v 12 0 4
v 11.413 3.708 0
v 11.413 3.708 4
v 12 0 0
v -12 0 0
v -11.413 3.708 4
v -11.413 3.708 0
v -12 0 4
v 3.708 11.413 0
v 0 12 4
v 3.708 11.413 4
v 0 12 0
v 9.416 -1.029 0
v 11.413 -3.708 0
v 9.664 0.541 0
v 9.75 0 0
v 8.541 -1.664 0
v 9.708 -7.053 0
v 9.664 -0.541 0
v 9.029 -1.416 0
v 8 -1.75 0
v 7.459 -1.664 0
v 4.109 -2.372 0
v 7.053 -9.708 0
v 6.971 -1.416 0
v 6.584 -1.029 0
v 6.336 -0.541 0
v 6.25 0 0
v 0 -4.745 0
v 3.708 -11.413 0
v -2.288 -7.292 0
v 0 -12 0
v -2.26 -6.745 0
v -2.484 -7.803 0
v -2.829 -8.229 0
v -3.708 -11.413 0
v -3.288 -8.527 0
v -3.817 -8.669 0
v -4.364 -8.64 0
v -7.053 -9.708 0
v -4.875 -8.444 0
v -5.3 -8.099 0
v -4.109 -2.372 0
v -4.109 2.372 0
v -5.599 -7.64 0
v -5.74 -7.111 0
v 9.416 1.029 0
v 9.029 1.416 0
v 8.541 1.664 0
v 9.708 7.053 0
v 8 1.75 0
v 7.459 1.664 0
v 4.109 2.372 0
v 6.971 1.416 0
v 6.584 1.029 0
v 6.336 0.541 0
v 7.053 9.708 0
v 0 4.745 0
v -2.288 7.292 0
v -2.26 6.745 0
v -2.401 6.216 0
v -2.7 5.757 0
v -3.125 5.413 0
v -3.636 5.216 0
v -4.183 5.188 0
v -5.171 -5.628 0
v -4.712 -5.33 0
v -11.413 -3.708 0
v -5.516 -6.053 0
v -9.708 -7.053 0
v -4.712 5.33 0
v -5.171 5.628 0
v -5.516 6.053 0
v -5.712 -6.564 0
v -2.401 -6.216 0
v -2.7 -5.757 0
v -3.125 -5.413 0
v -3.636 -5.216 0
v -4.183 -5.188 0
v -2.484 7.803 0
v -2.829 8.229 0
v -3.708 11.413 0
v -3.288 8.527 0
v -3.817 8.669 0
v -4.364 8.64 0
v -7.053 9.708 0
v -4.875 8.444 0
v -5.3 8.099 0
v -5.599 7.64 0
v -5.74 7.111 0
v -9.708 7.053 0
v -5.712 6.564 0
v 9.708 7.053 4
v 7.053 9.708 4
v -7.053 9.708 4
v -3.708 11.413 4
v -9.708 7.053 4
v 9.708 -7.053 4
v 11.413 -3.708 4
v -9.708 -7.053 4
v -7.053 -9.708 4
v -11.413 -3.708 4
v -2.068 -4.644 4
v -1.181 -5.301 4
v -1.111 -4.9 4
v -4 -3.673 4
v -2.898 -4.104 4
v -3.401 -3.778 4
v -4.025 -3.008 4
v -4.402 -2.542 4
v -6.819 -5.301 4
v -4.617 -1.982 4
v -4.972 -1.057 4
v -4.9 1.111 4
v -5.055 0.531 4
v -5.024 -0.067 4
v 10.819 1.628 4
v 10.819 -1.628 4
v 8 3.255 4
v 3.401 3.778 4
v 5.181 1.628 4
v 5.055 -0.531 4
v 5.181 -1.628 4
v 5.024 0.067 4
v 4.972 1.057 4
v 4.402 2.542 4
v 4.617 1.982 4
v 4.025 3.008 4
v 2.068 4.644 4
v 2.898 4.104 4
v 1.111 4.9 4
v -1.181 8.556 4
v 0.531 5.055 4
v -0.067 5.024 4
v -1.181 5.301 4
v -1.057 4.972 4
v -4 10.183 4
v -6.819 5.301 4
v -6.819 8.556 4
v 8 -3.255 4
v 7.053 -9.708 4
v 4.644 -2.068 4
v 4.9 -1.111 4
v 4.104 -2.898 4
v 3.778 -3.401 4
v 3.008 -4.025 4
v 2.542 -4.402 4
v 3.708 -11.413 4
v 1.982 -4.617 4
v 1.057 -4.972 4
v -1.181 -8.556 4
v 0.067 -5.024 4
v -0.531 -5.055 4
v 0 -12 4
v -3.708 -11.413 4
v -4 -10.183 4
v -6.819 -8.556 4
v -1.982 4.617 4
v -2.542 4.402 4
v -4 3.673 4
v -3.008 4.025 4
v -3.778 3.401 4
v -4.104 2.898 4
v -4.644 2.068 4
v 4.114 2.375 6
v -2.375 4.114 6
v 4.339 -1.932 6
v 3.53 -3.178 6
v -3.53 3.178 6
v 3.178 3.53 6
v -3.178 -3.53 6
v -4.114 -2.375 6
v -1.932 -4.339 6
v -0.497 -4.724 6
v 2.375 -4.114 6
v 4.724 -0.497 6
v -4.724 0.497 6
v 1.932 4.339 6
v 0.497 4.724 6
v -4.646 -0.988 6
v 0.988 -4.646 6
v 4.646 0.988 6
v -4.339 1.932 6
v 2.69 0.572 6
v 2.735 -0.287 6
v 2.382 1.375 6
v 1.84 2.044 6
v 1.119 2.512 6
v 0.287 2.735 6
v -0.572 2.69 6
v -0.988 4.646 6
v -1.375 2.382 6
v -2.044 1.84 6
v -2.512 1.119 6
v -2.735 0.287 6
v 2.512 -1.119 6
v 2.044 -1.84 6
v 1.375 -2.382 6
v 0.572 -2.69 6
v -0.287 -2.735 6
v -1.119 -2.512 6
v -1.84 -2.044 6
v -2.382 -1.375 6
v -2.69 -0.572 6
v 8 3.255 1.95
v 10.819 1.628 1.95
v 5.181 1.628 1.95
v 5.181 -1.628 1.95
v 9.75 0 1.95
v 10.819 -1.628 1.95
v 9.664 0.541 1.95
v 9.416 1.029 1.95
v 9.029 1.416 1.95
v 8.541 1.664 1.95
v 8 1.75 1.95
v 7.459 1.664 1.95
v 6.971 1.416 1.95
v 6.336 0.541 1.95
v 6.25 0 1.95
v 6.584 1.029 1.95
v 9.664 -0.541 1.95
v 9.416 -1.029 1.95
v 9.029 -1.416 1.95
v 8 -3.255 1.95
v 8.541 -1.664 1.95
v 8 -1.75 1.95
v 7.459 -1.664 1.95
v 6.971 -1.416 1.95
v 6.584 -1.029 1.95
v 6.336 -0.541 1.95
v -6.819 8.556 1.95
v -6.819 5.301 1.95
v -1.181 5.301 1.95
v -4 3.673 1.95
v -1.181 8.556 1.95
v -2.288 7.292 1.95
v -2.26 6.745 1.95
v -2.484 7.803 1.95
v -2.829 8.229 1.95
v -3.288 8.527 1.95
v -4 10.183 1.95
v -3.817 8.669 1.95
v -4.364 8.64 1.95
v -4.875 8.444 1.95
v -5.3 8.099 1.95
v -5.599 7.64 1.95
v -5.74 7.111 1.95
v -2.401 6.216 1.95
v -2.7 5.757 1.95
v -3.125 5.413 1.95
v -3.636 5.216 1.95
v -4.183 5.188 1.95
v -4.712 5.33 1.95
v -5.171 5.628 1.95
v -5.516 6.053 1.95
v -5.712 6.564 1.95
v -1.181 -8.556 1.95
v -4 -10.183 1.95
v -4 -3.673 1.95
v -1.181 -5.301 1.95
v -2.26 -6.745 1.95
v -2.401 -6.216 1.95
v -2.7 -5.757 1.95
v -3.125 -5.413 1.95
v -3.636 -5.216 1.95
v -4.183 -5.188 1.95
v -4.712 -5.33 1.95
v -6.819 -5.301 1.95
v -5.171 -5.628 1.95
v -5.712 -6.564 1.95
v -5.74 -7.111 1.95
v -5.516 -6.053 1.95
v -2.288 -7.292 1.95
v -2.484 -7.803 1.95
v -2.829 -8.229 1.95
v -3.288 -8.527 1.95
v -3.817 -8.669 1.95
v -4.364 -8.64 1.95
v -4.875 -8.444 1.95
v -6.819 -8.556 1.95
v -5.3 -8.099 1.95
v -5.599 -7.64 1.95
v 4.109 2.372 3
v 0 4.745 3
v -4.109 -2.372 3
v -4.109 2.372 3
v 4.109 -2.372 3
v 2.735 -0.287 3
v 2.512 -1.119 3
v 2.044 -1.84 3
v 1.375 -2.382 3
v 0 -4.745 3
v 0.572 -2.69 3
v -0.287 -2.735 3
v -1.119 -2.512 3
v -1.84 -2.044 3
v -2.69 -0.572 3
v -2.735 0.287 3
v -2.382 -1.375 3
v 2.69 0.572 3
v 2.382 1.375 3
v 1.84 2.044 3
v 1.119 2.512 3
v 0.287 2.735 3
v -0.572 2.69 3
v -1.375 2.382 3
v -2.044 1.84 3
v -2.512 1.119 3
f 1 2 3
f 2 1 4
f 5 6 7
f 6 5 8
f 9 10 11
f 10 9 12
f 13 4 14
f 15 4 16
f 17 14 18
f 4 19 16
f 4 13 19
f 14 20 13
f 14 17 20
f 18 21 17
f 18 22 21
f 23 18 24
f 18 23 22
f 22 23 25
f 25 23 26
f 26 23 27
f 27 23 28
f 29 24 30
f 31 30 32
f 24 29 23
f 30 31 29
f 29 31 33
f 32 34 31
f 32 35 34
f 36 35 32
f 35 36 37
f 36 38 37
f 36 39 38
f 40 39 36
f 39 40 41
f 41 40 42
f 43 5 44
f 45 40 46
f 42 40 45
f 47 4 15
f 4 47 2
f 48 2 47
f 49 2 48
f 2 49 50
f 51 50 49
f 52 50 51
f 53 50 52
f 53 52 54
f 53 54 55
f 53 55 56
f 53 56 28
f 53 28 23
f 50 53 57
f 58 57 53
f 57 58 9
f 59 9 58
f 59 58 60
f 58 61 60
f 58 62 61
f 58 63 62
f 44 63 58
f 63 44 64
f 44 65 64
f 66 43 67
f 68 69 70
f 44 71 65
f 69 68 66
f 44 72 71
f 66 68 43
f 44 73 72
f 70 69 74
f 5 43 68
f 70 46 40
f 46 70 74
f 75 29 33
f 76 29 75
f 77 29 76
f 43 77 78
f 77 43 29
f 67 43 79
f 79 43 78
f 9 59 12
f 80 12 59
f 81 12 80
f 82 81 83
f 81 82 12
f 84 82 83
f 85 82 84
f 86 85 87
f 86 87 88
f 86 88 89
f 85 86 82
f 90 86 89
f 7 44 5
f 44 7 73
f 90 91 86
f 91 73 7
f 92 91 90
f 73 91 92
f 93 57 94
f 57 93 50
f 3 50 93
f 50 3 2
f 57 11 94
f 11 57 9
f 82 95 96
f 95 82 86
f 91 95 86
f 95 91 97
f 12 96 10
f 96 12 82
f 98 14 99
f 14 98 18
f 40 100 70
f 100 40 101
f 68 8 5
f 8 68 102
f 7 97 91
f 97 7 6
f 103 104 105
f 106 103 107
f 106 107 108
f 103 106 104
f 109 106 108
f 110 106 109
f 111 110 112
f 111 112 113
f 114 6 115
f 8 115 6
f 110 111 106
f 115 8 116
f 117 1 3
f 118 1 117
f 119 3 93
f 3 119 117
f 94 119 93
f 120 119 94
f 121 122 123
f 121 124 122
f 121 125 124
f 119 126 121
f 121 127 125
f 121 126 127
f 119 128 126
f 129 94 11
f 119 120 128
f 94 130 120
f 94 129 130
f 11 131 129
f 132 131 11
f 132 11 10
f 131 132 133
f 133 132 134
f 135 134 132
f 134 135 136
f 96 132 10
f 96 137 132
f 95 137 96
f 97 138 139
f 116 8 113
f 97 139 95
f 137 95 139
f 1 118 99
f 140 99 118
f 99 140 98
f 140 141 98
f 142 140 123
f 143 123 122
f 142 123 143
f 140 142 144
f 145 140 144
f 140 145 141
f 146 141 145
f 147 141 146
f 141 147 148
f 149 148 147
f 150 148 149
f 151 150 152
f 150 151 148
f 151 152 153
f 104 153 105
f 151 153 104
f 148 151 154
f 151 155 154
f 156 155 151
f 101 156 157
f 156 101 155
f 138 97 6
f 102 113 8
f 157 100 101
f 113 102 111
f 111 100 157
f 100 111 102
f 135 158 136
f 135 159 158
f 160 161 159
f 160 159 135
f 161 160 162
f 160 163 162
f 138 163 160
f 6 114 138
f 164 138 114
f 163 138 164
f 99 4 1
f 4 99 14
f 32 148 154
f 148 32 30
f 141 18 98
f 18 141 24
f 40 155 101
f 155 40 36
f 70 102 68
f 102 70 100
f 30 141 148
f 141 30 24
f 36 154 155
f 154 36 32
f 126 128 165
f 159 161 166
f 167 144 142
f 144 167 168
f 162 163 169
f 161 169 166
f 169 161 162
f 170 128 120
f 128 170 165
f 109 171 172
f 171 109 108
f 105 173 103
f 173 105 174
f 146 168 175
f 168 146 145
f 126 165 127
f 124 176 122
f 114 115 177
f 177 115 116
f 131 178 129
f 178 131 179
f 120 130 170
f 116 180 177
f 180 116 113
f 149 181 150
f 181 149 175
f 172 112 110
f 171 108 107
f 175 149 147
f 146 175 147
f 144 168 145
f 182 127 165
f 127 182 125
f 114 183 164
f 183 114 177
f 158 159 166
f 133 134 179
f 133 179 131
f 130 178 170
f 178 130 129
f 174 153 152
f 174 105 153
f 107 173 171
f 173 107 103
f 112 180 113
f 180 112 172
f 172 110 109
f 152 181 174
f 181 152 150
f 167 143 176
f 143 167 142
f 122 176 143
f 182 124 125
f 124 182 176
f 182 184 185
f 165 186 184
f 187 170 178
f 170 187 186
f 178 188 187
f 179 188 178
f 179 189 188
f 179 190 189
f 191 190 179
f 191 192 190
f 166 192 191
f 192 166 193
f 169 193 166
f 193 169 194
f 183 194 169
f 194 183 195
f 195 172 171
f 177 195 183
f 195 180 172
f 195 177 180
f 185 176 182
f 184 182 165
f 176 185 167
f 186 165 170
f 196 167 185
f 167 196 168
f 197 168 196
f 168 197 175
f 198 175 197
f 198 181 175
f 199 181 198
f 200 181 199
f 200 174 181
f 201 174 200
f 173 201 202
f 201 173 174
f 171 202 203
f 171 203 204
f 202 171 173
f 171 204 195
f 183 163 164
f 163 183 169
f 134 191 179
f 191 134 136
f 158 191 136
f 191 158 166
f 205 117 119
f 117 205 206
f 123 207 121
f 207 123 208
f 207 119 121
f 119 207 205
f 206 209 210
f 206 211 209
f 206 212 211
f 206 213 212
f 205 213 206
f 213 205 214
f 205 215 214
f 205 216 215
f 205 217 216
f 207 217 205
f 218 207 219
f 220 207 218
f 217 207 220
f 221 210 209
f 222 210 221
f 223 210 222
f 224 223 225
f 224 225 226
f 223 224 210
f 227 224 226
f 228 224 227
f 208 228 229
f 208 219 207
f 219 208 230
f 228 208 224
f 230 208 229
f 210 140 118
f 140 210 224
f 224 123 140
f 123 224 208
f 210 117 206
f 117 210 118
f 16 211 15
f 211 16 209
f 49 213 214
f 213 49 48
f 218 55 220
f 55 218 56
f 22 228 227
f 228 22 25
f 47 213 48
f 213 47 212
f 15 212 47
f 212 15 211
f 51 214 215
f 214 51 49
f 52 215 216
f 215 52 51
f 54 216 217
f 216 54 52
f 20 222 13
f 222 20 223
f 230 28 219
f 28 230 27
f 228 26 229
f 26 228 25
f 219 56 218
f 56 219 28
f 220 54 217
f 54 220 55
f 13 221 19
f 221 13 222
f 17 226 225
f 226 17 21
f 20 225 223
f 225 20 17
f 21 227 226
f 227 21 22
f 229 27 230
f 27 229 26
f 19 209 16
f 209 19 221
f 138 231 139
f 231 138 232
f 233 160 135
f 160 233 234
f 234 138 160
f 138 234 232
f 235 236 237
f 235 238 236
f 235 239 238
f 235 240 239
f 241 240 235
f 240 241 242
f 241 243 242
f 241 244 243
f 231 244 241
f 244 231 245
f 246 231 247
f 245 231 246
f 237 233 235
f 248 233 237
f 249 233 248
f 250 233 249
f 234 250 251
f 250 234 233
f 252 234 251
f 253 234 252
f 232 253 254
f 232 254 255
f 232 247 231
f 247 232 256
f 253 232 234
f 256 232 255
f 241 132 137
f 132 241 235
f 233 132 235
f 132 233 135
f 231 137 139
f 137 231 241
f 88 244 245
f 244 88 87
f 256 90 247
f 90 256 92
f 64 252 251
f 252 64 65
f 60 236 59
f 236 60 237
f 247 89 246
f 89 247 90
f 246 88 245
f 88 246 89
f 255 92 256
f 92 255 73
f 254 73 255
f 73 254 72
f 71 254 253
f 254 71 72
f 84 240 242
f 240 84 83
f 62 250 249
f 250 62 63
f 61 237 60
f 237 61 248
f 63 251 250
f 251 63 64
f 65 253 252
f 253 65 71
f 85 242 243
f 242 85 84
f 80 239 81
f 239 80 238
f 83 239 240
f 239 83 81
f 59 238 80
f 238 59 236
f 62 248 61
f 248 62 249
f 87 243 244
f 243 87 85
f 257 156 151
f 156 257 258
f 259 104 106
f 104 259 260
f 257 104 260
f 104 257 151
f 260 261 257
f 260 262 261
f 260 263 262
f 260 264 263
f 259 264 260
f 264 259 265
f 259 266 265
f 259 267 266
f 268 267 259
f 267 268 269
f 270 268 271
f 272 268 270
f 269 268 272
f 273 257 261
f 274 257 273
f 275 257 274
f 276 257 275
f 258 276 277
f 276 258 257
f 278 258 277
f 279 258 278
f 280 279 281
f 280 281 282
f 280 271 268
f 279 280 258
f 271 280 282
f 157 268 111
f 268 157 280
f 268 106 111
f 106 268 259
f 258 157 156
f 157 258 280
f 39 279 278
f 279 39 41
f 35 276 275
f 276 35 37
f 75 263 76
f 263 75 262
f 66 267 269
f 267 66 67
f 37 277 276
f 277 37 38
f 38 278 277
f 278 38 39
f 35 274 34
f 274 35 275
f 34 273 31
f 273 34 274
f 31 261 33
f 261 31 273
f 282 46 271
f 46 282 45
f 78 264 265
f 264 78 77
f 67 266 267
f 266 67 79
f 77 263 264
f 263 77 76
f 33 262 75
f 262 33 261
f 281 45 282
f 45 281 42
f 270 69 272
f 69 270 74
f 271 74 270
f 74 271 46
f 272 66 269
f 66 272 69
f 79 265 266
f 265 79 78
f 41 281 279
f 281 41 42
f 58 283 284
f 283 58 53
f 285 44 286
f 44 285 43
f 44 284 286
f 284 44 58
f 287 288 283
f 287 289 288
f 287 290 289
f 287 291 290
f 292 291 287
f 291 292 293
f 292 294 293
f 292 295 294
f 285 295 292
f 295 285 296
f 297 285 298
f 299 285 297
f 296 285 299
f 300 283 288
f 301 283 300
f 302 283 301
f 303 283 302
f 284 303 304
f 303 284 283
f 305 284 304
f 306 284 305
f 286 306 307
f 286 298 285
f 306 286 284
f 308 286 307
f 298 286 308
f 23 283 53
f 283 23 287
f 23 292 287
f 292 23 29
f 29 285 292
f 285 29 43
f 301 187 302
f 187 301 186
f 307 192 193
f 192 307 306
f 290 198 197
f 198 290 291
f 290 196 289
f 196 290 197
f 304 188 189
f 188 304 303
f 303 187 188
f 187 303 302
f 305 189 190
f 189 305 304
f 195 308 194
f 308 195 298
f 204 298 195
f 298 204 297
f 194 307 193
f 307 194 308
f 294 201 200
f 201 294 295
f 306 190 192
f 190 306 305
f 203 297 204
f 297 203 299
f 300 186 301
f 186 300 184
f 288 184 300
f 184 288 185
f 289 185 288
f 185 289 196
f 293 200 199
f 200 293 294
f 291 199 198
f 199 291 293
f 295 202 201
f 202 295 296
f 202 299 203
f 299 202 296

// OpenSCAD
difference() {
	union() {
		difference() {
			cylinder($fn = 20, d = 24, h = 4);
			rotate(a = [0, 0, 0.0000000000]) {
				translate(v = [42.5000000000, 0, 9.5000000000]) {
					rotate(a = [180, -90, 0]) {
						translate(v = [0, 0, 5.2000000000]) {
							union() {
								translate(v = [0, 0, false]) {
									cylinder($fn = 20, d = 5.5000000000, h = 55.2000000000);
								}
								translate(v = [0, 0, -15.1500000000]) {
									cylinder($fn = 20, d = 9.0000000000, h = 15.2000000000);
								}
							}
						}
					}
				}
				translate(v = [51.0000000000, -50, 0]) {
					cube(size = 100);
				}
			}
			rotate(a = [0, 0, 45.0000000000]) {
				translate(v = [42.5000000000, 0, 9.5000000000]) {
					rotate(a = [180, -90, 0]) {
						translate(v = [0, 0, 5.2000000000]) {
							union() {
								translate(v = [0, 0, false]) {
									cylinder($fn = 20, d = 5.5000000000, h = 55.2000000000);
								}
								translate(v = [0, 0, -15.1500000000]) {
									cylinder($fn = 20, d = 9.0000000000, h = 15.2000000000);
								}
							}
						}
					}
				}
				translate(v = [51.0000000000, -50, 0]) {
					cube(size = 100);
				}
			}
			rotate(a = [0, 0, 90.0000000000]) {
				translate(v = [42.5000000000, 0, 9.5000000000]) {
					rotate(a = [180, -90, 0]) {
						translate(v = [0, 0, 5.2000000000]) {
							union() {
								translate(v = [0, 0, false]) {
									cylinder($fn = 20, d = 5.5000000000, h = 55.2000000000);
								}
								translate(v = [0, 0, -15.1500000000]) {
									cylinder($fn = 20, d = 9.0000000000, h = 15.2000000000);
								}
							}
						}
					}
				}
				translate(v = [51.0000000000, -50, 0]) {
					cube(size = 100);
				}
			}
			rotate(a = [0, 0, 135.0000000000]) {
				translate(v = [42.5000000000, 0, 9.5000000000]) {
					rotate(a = [180, -90, 0]) {
						translate(v = [0, 0, 5.2000000000]) {
							union() {
								translate(v = [0, 0, false]) {
									cylinder($fn = 20, d = 5.5000000000, h = 55.2000000000);
								}
								translate(v = [0, 0, -15.1500000000]) {
									cylinder($fn = 20, d = 9.0000000000, h = 15.2000000000);
								}
							}
						}
					}
				}
				translate(v = [51.0000000000, -50, 0]) {
					cube(size = 100);
				}
			}
			rotate(a = [0, 0, 180.0000000000]) {
				translate(v = [42.5000000000, 0, 9.5000000000]) {
					rotate(a = [180, -90, 0]) {
						translate(v = [0, 0, 5.2000000000]) {
							union() {
								translate(v = [0, 0, false]) {
									cylinder($fn = 20, d = 5.5000000000, h = 55.2000000000);
								}
								translate(v = [0, 0, -15.1500000000]) {
									cylinder($fn = 20, d = 9.0000000000, h = 15.2000000000);
								}
							}
						}
					}
				}
				translate(v = [51.0000000000, -50, 0]) {
					cube(size = 100);
				}
			}
			rotate(a = [0, 0, 225.0000000000]) {
				translate(v = [42.5000000000, 0, 9.5000000000]) {
					rotate(a = [180, -90, 0]) {
						translate(v = [0, 0, 5.2000000000]) {
							union() {
								translate(v = [0, 0, false]) {
									cylinder($fn = 20, d = 5.5000000000, h = 55.2000000000);
								}
								translate(v = [0, 0, -15.1500000000]) {
									cylinder($fn = 20, d = 9.0000000000, h = 15.2000000000);
								}
							}
						}
					}
				}
				translate(v = [51.0000000000, -50, 0]) {
					cube(size = 100);
				}
			}
			rotate(a = [0, 0, 270.0000000000]) {
				translate(v = [42.5000000000, 0, 9.5000000000]) {
					rotate(a = [180, -90, 0]) {
						translate(v = [0, 0, 5.2000000000]) {
							union() {
								translate(v = [0, 0, false]) {
									cylinder($fn = 20, d = 5.5000000000, h = 55.2000000000);
								}
								translate(v = [0, 0, -15.1500000000]) {
									cylinder($fn = 20, d = 9.0000000000, h = 15.2000000000);
								}
							}
						}
					}
				}
				translate(v = [51.0000000000, -50, 0]) {
					cube(size = 100);
				}
			}
			rotate(a = [0, 0, 315.0000000000]) {
				translate(v = [42.5000000000, 0, 9.5000000000]) {
					rotate(a = [180, -90, 0]) {
						translate(v = [0, 0, 5.2000000000]) {
							union() {
								translate(v = [0, 0, false]) {
									cylinder($fn = 20, d = 5.5000000000, h = 55.2000000000);
								}
								translate(v = [0, 0, -15.1500000000]) {
									cylinder($fn = 20, d = 9.0000000000, h = 15.2000000000);
								}
							}
						}
					}
				}
				translate(v = [51.0000000000, -50, 0]) {
					cube(size = 100);
				}
			}
		}
		rotate(a = 30) {
			cylinder($fn = 20, d1 = 11.5000000000, d2 = 9.5000000000, h = 6);
		}
	}
	rotate(a = 30) {
		cylinder($fn = 6, d = 9.4900000000, h = 3);
	}
	rotate(a = 30) {
		cylinder($fn = 20, d = 5.5000000000, h = 10);
	}
	rotate(a = [0, 0, 0.0000000000]) {
		translate(v = [8, 0, -0.0500000000]) {
			translate(v = [0, 0, 2]) {
				rotate(a = 30) {
					cylinder($fn = 6, d = 6.5100000000, h = 3.2000000000);
				}
			}
			cylinder($fn = 20, d = 3.5000000000, h = 50);
		}
	}
	rotate(a = [0, 0, 120.0000000000]) {
		translate(v = [8, 0, -0.0500000000]) {
			translate(v = [0, 0, 2]) {
				rotate(a = 30) {
					cylinder($fn = 6, d = 6.5100000000, h = 3.2000000000);
				}
			}
			cylinder($fn = 20, d = 3.5000000000, h = 50);
		}
	}
	rotate(a = [0, 0, 240.0000000000]) {
		translate(v = [8, 0, -0.0500000000]) {
			translate(v = [0, 0, 2]) {
				rotate(a = 30) {
					cylinder($fn = 6, d = 6.5100000000, h = 3.2000000000);
				}
			}
			cylinder($fn = 20, d = 3.5000000000, h = 50);
		}
	}
}
/***********************************************
*********      SolidPython code:      **********
************************************************
 
cq = 50
render = False

import os
os.environ["PRINTEDSCOPE_QUALITY"] = str(cq)

from lib.global_parameters import *
from lib.model_parameters import *
from solid import *
from solid.utils import *
import numpy as np

g2_guider_diameter = 180*2
g2p03_floar_thickness = 10
g2p03_floar_width = 60 
g2p03_guiter_height = 10
g2p03_guider_thickness = 20
g2p03_guider_width = 40

g2p03_guider_bolt = M5 # srouby pro spojeni dilu kolejnice
g2p03_guider_bolt['l'] = 40

g2p2_column_d = 30
g2p2_border_ind = 85
g2p2_border_thickness = 10
g2p2_border_wall = g2p2_border_thickness-1.5
#g2p2_height = 20
g2p2_thickness = 5


def s111g2p01():
	m = cylinder(h=g2p2_thickness+g2p03_guider_bolt['dk'], d=g2p2_border_ind+2*g2p2_border_thickness, segments=cq)
	m-= up(g2p2_thickness+5)(cylinder(d=g2p2_border_ind, h=g2p03_guider_bolt['dk']*1.5+clear, segments=cq))
	m-= (up(g2p2_thickness)(cylinder(d1=g2p2_border_ind-10, d2=g2p2_border_ind, h=5+clear, segments=cq)))
	
	for i in range(8):
		m-=rotate([0,0,360/8*i])(
			translate([g2p2_border_ind/2,0,g2p2_thickness+g2p03_guider_bolt['dk']*0.5])(
				(bolt_hole(g2p03_guider_bolt, align='head', rotation=[0,-1,0]))
			),
			translate([g2p2_border_ind/2+g2p2_border_wall,-50,0])(
				(cube(100))
			)
		)

	m+= cylinder(h=g2p2_thickness+g2p03_guider_bolt['dk'], d=24, segments=cq)
	m-= up(clear)(cylinder(h=g2p2_thickness+g2p03_guider_bolt['dk'], d=M5['d'], segments=cq))
	m-= rotate(30)(down(clear)(cylinder(h=g2p2_thickness+g2p03_guider_bolt['dk']+clear-5, d=M5['e'], segments=6)))

	for i in range(3):
		m-=rotate([0,0,360/3*i])(
			translate([8, 0, -clear])(
				cylinder(h=M3['k'], d=M3['dk'], segments=cq),
				cylinder(h=50, d=M3['d'], segments=cq),
				)
		)

	return m

def s111g2p02():
	m = cylinder(h=4, d=24, segments=cq)
	#m-= up(g2p2_thickness+5)(cylinder(d=g2p2_border_ind, h=g2p03_guider_bolt['dk']*1.5+clear, segments=cq))
	#m-= (up(g2p2_thickness)(cylinder(d1=g2p2_border_ind-10, d2=g2p2_border_ind, h=5+clear, segments=cq)))
	
	for i in range(8):
		m-=rotate([0,0,360/8*i])(
			translate([g2p2_border_ind/2,0,g2p2_thickness+g2p03_guider_bolt['dk']*0.5])(
				(bolt_hole(g2p03_guider_bolt, align='head', rotation=[0,-1,0]))
			),
			translate([g2p2_border_ind/2+g2p2_border_wall,-50,0])(
				(cube(100))
			)
		)

	#m+= cylinder(h=5, d=10)
	m+= (rotate(30)(cylinder(h=6, d2=M5['d']+4, d1=M5['d']+6, segments=cq)))
	m-= (rotate(30)(cylinder(h=3, d=M5['e'], segments=6)))
	m-= (rotate(30)(cylinder(h=10, d=M5['d'], segments=cq)))

	for i in range(3):
		m-=rotate([0,0,360/3*i])(
			translate([8, 0, -clear])(
				up(2)(rotate(30)(cylinder(h=M3['k'], d=M3['e'], segments=6))),
				cylinder(h=50, d=M3['d'], segments=cq)
				)
		)

	return m

def s111g2p03():
	m = cube(0)

	# lista pro pohyb lozisek AZ
	m+= down(0)(
			cylinder(d=g2_octangle_do+g2p03_guider_width/2, h=g2p03_guider_thickness, segments=cq)
		)
	m-= down(clear)(
			cylinder(d=g2_octangle_do-g2p03_guider_width/2, h=g2p03_guider_thickness+clear*2, segments=cq)
		)

	m+= rotate([0, 0, -360/24])(
			right(g2p03_middle_diameter/2-5)(
				cube([(g2_octangle_do-g2p03_middle_diameter)/2, g2p03_guider_thickness ,g2p03_guider_thickness])
			)
		)
	

	m+= rotate([0, 0, 360/24])(
			right(g2p03_middle_diameter/2-5)(
				back(g2p03_guider_thickness)(
					cube([(g2_octangle_do-g2p03_middle_diameter)/2, g2p03_guider_thickness ,g2p03_guider_thickness])
				)
			)
		)

	m+= right(g2p03_middle_diameter/2-g2p03_guider_thickness)(
			back(50)(
				cube([g2p03_guider_thickness, 100, g2p03_guider_thickness])
			)
		)

	p_bolt = g2p03_guider_bolt

	
	mount_a = cube([p_bolt['dk']*2, p_bolt['l']/2+p_bolt['k']-clear, p_bolt['dk']*2])
	mount_a-= translate([p_bolt['dk'], p_bolt['l']/2+clear, p_bolt['dk']])(
			rotate([90, 0, 0])(
				cylinder(h=p_bolt['l'], d=p_bolt['d'], segments=cq)
			)
		)
	mount_a-= translate([p_bolt['dk'], p_bolt['l']/2+p_bolt['l'], p_bolt['dk']])(
			rotate([90, 0, 0])(
				cylinder(h=p_bolt['l'], d=p_bolt['dk'], segments=cq)
			)
		)

	mount_a = rotate([0, 0, -360/12])(
			right(g2_guider_diameter/2-p_bolt['dk']*2-g2p03_guider_thickness)(
				mount_a
				)
			)

	mount_b = cube([p_bolt['dk']*2, p_bolt['l']/2-clear, p_bolt['dk']*2])
	mount_b-= translate([p_bolt['dk'], p_bolt['l']/2+clear, p_bolt['dk']])(
			rotate([90, 0, 0])(
				cylinder(h=p_bolt['l'], d=p_bolt['d'], segments=cq)
			)
		)
	mount_b-= translate([p_bolt['dk'], p_bolt['m'], p_bolt['dk']])(
			rotate([0, -90, 0])(
				nut_pocket(p_bolt)
			)
		)

	mount_b = rotate([0, 0, 360/12])(
				right(g2_guider_diameter/2-p_bolt['dk']*2-g2p03_guider_thickness)(
					back(p_bolt['l']/2)(
						mount_b
					)
				)
			)


	m += up(g2p03_floar_thickness)(mount_a)
	m += up(g2p03_floar_thickness)(mount_b)


	# oriznuti precnivajicich casti mimo osmiuhelnik
	m = intersection()(
		m,
		up(-250)(hull()(
			rotate([0, 0, 360/24])(cube([500, 0.1, 500])),
			rotate([0, 0, -360/24])(cube([500, 0.1, 500]))
		))
	)


	bolt = M6.copy()
	bolt['l'] = 20
	for x in [0,180]:
		m -= mirror([0, x, 0])(
			up(g2p03_guider_thickness/2)(
				rotate([0,0,-360/24])(
					translate([g2_octangle_do/2-g2p03_guider_thickness, g2p03_guider_thickness-bolt['k'], 0])(
						(bolt_hole(bolt, rotation=[-1,0,0]))	
					)
				)
			)
		)

	for x in [0,180]:
		m -= mirror([0, x, 0])(
			up(g2p03_guider_thickness/2)(
				rotate([0,0,360/24])(
					translate([g2_octangle_di/2-g2p03_guider_thickness*2.5, g2p03_guider_thickness-bolt['k']-25, 0])(
						(bolt_hole(bolt, rotation=[1,0,0]))
					)
				)
			)
		)


	return m

def s111g2p08_pipe_rectangle(l = 100):
	m = translate([0, -base_pipe['D']/2-2, -2])(
			cube([l, base_pipe['D']+4, 2]),
			translate([0,base_pipe['D']/2+2,base_pipe['D']/2+2])(
				rotate([0,90,0])(
					cylinder(d=base_pipe['D']+4, h=l)
				)
			)
	)
	m = hull()(m)

	m-= translate([0, -base_pipe['D']/2-2, -2])(
			translate([0,base_pipe['D']/2+2,base_pipe['D']/2+2])(
				rotate([0,90,0])(
					cylinder(d=base_pipe['D'], h=l+1)
				)
			)
	)
	return m

def s111g2p08():
	m = s111g2p03()
	m+= translate([g2_octangle_do/2, 0, g2p03_floar_thickness+base_pipe['D']/2+2])(
			rotate([0,0,45+90])(
				s111g2p08_pipe_rectangle()
			),
			rotate([0,0,-45-90])(
				s111g2p08_pipe_rectangle()
			)
		)
	m+= hull()(translate([g2_octangle_do/2, 0, g2p03_floar_thickness+base_pipe['D']/2+2])(
			rotate([0,0,45+90])(
				s111g2p08_pipe_rectangle(1)
			),
			rotate([0,0,-45-90])(
				s111g2p08_pipe_rectangle(1)
			)
		))

	m = intersection()(
		m,
		up(-250)(hull()(
			rotate([0, 0, 360/24])(cube([500, 0.1, 500])),
			rotate([0, 0, -360/24])(cube([500, 0.1, 500]))
		))
	)
	return m


def s111g2p09():
	m = s111g2p03()


	return m

def s111g2p04():
	m = cube(0)

	m = cylinder(h=g2p03_guider_thickness+clear, d=g2_octangle_do+g2p03_guider_width/2, segments=cq)
	m-= down(clear)(cylinder(h=g2p03_guider_thickness+3*clear, d=g2_octangle_di-25, segments=cq))
	m+= down(clear)(cylinder(h=g2p03_guider_thickness+3*clear, d=g2_octangle_di-80, segments=cq))
	m-= down(clear)(cylinder(h=g2p03_guider_thickness+3*clear, d=g2_octangle_di-120, segments=cq))
	# oriznuti precnivajicich casti mimo osmiuhelnik
	m = intersection()(
		m,
		hull()(
			rotate([0, 0, 360/48-0.1])(cube([500, 0.1, g2p03_guider_thickness+clear])),
			rotate([0, 0, -360/48+0.1])(cube([500, 0.1, g2p03_guider_thickness+clear]))
		)
	)


	bolt = M6.copy()
	bolt['l'] = 25
	for x in [0,180]:
		for pos in [g2_octangle_do/2-g2p03_guider_thickness, g2_octangle_di/2-g2p03_guider_thickness*2.5]:
			m -= mirror([0, x, 0])(
				up(g2p03_guider_thickness/2)(
					rotate([0,0,360/48])(
						translate([pos, g2p03_guider_thickness-bolt['k'], 0])(
							union()(
								rotate([90, 0, 0])(bolt_hole(bolt)),
								back(28)(rotate([0, 180, 0])(nut_pocket(bolt)))
							)
						)
					)
				)
			)



	return m


def s111g2p05():
	m = s111g2p04() 


	t = cylinder(h=base_pipe['D']*2, d=g2_octangle_do+g2p03_guider_width/2, segments=cq)
	t-= down(clear)(cylinder(h=base_pipe['D']*2+2*clear, d=g2p03_middle_diameter, segments=cq))
	# oriznuti precnivajicich casti mimo osmiuhelnik
	t = intersection()(
		t,
		hull()(
			forward(g2p03_guider_thickness)(
				rotate([0, 0, 360/48-0.5])(
					cube([500, 0.1, base_pipe['D']*2+clear])
				)
			),
			back(g2p03_guider_thickness)(
				rotate([0, 0, -360/48+0.5])(
					cube([500, 0.1, base_pipe['D']*2+clear])
				)
			)
		)
	)

	m+= up(g2p03_guider_thickness+clear)(t)


	##
	## diry pro spojovaci tyce
	##
	m -=debug(right(g2_octangle_do/2)(
			up(g2p03_guider_thickness+base_pipe['D'])(
				rotate([0, 90, 45*3])(
					up(base_pipe['D']/2)(
						cylinder(d=base_pipe['D'], h=100, segments=cq)
					)
				)
			)
		))

	m -=debug(right(g2_octangle_do/2)(
			up(g2p03_guider_thickness+base_pipe['D'])(
				rotate([0, 90, -45*3])(
					up(base_pipe['D']/2)(
						cylinder(d=base_pipe['D'], h=100, segments=cq)
					)
				)
			)
		))




	return m

g3_axis_diameter = 100;
g3_axis_space = 1.5;		## jak velka je mezera mezi osou na dalekohledu a dilu na podstave
g2_bearing_az = bearing_625

def s111g2p06():
	m = translate([-70, 0, 0])(
			cube([g3_axis_diameter+40, 30, g3_axis_diameter/3+base_pipe['D']*2])
		)

	m-=translate([0, 0, base_pipe['D']*2+g3_axis_diameter/2])(
			rotate([-90, 0, 0])(
				cylinder(d=g3_axis_diameter+2*g3_axis_space, h=30+clear, segments=cq)
			)
		)

	for x in [-1, 1]:
		m-=translate([0, 0, base_pipe['D']*2+g3_axis_diameter/2])(
				rotate([0, 30*x, 0])(
					translate([0, 30-g2_bearing_az['bolt']['k'], -g3_axis_diameter/2-g2_bearing_az['D']/2])(
						rotate([90, 0, 0])(
							(bolt_hole(g2_bearing_az['bolt'], l=4.7-clear))
						)
					),
					translate([0, g2_bearing_az['bolt']['m']+g2_bearing_az['B']+5, -g3_axis_diameter/2-g2_bearing_az['D']/2])(
						rotate([90, 0, 0])(
							(cylinder(h=30, d=g2_bearing_az['D']+1, segments=cq))
						)
					)
				)
			)

		m-= translate(np.array([(g3_axis_diameter+10)/2,15,10])*[x, 1, 1])(
			rotate([90, 0, 0])(
				nut_pocket(M5)
			),
			up(-10)(
				bolt_hole(M5, l=20)
			)
		)



	return down(base_pipe['D']*2+g3_axis_diameter/2)(m)

def s111g2p07():
	m = translate([-g3_axis_diameter/2-20, -15, -10])(
		cube([g3_axis_diameter+40, 30, 15])
	)

	v = norm_vector([g2_octangle_f/2-30, 15, -600])
	v2= norm_vector([-g2_octangle_f/2, -g2_octangle_f+base_pipe['D']+15, -600])

	bolt = get_optimal_bolt(3, base_pipe['D']+5)
	print("Pouzijte srouby M{}x{}".format(bolt['d'], bolt['l']))
	pipe_around = bolt['l']+bolt['k']

	m += tube(vector=v, origin=[30, 0, 0], d=pipe_around, l=25)
	m += tube(vector=v*[-1, 1, 1], origin=[-30, 0, 0], d=pipe_around, l=25)
	m += tube(vector=v2, origin=[0, 0, 0], d=pipe_around, l=25)

	m -= tube(vector=v, origin=[30, 0, 0], d=base_pipe['D'], l=30)
	m -= tube(vector=v*[-1, 1, 1], origin=[-30, 0, 0], d=base_pipe['D'], l=30)
	m -= tube(vector=v2, origin=[0, 0, 0], d=base_pipe['D'], l=30)
		

	for i in [-1, 1]:
		m -= translate(([30,0,0]+v*15)*[i, 1, 1])(
				rotate(get_rotation(v)+[90, 0, 0])(
					down(bolt['l']/2-bolt['k']/2)(
						(bolt_hole(bolt, nut=bolt['m']))
					)
				)
		)

	m -= translate([0,0,0]+v2*15)(
			rotate(get_rotation(v2)+[90, 0, 0])(
				rotate([0,-120,0])(down(bolt['l']/2-bolt['k']/2)(
					(bolt_hole(bolt, nut=bolt['m']))
				))
			)
		)

	for y in [-1, 1]:
		m-= translate(np.array([(g3_axis_diameter+10)/2,0,0-5])*[y, 1, 1])(
				bolt_hole(M5, l=10)
			)

	m = intersection()(
			m,
			translate([-250, -250, -500+5])(cube(500))
		)
	return m


model = cube(0)

for x in range(8):
	model += rotate([0, 0, 360/8*x+360/16])(s111g2p03())
for x in range(4):
	pass
	#model += rotate([0, 0, 360/8*(x+)*2])(s111g2p04())


vector = [-g2_octangle_f/2+30, 0, 600]
origin = [g2_octangle_f/2, g2_octangle_f/2, 30]


model += tube(vector=[-g2_octangle_f/2+30, -15, 600], origin=[g2_octangle_f/2, g2_octangle_f/2, 30], d = base_pipe['D'])
model += tube(vector=[-g2_octangle_f/2+30, 15, 600], origin=[g2_octangle_f/2, -g2_octangle_f/2, 30], d = base_pipe['D'])
model += tube(vector=[g2_octangle_f/2-30, -15, 600], origin=[-g2_octangle_f/2, g2_octangle_f/2, 30], d = base_pipe['D'])
model += tube(vector=[g2_octangle_f/2-30, 15, 600], origin=[-g2_octangle_f/2, -g2_octangle_f/2, 30], d = base_pipe['D'])


model += tube(vector=[g2_octangle_f/2, -g2_octangle_f+base_pipe['D']+15, 600], origin=[-g2_octangle_f/2, g2_octangle_f/2-base_pipe['D'], 30], d = base_pipe['D'])
model += tube(vector=[g2_octangle_f/2, g2_octangle_f-base_pipe['D']-15, 600], origin=[-g2_octangle_f/2, -g2_octangle_f/2+base_pipe['D'], 30], d = base_pipe['D'])



model += rotate([0, 0, 0*90+45])(s111g2p05())
model += rotate([0, 0, 1*90+45])(s111g2p05())
model += rotate([0, 0, 2*90+45])(s111g2p05())
model += rotate([0, 0, 3*90+45])(s111g2p05())


for x in [0, 1]:
	model += mirror([0, x, 0])(up(720)(forward(telescope_tube_diameter/2+telescope_side_space)(s111g2p06())))
	model += mirror([0, x, 0])(up(632)(forward(telescope_tube_diameter/2+telescope_side_space+15)(s111g2p07())))


#scad_render_to_file(model, '../scad/111_2003.scad')
#generate_stl(s111g2p01(), '111_2001', '../scad', '../stl')
#generate_preview(s111g2p01(), '111_2001', '../scad', '../preview')
#generate_stl(s111g2p02(), '111_2002', '../scad', '../stl')
#generate_preview(s111g2p02(), '111_2002', '../scad', '../preview')

scad_render_to_file(s111g2p01(), '../scad/111_2001.scad')
scad_render_to_file(s111g2p02(), '../scad/111_2002.scad')
scad_render_to_file(s111g2p03(), '../scad/111_2003.scad')
scad_render_to_file(s111g2p05(), '../scad/111_2005.scad')
scad_render_to_file(s111g2p04(), '../scad/111_2004.scad')
scad_render_to_file(s111g2p05(), '../scad/111_2005.scad')
scad_render_to_file(s111g2p06(), '../scad/111_2006.scad')
scad_render_to_file(s111g2p07(), '../scad/111_2007.scad')
scad_render_to_file(s111g2p08(), '../scad/111_2008.scad')
scad_render_to_file(s111g2p09(), '../scad/111_2009.scad')
#scad_render_to_file(s111g2p03(), '../scad/111_2003.scad')


render = False
if render:
	print("Rendering...")
	cq = 100
	generate(s111g2p01(), '111_2001')
	generate(s111g2p02(), '111_2002')
	generate(s111g2p03(), '111_2003')
	generate(s111g2p04(), '111_2004')
	generate(s111g2p05(), '111_2005')
	generate(s111g2p06(), '111_2006')
	generate(s111g2p07(), '111_2007')

#s111g1_info() 
 
************************************************/
